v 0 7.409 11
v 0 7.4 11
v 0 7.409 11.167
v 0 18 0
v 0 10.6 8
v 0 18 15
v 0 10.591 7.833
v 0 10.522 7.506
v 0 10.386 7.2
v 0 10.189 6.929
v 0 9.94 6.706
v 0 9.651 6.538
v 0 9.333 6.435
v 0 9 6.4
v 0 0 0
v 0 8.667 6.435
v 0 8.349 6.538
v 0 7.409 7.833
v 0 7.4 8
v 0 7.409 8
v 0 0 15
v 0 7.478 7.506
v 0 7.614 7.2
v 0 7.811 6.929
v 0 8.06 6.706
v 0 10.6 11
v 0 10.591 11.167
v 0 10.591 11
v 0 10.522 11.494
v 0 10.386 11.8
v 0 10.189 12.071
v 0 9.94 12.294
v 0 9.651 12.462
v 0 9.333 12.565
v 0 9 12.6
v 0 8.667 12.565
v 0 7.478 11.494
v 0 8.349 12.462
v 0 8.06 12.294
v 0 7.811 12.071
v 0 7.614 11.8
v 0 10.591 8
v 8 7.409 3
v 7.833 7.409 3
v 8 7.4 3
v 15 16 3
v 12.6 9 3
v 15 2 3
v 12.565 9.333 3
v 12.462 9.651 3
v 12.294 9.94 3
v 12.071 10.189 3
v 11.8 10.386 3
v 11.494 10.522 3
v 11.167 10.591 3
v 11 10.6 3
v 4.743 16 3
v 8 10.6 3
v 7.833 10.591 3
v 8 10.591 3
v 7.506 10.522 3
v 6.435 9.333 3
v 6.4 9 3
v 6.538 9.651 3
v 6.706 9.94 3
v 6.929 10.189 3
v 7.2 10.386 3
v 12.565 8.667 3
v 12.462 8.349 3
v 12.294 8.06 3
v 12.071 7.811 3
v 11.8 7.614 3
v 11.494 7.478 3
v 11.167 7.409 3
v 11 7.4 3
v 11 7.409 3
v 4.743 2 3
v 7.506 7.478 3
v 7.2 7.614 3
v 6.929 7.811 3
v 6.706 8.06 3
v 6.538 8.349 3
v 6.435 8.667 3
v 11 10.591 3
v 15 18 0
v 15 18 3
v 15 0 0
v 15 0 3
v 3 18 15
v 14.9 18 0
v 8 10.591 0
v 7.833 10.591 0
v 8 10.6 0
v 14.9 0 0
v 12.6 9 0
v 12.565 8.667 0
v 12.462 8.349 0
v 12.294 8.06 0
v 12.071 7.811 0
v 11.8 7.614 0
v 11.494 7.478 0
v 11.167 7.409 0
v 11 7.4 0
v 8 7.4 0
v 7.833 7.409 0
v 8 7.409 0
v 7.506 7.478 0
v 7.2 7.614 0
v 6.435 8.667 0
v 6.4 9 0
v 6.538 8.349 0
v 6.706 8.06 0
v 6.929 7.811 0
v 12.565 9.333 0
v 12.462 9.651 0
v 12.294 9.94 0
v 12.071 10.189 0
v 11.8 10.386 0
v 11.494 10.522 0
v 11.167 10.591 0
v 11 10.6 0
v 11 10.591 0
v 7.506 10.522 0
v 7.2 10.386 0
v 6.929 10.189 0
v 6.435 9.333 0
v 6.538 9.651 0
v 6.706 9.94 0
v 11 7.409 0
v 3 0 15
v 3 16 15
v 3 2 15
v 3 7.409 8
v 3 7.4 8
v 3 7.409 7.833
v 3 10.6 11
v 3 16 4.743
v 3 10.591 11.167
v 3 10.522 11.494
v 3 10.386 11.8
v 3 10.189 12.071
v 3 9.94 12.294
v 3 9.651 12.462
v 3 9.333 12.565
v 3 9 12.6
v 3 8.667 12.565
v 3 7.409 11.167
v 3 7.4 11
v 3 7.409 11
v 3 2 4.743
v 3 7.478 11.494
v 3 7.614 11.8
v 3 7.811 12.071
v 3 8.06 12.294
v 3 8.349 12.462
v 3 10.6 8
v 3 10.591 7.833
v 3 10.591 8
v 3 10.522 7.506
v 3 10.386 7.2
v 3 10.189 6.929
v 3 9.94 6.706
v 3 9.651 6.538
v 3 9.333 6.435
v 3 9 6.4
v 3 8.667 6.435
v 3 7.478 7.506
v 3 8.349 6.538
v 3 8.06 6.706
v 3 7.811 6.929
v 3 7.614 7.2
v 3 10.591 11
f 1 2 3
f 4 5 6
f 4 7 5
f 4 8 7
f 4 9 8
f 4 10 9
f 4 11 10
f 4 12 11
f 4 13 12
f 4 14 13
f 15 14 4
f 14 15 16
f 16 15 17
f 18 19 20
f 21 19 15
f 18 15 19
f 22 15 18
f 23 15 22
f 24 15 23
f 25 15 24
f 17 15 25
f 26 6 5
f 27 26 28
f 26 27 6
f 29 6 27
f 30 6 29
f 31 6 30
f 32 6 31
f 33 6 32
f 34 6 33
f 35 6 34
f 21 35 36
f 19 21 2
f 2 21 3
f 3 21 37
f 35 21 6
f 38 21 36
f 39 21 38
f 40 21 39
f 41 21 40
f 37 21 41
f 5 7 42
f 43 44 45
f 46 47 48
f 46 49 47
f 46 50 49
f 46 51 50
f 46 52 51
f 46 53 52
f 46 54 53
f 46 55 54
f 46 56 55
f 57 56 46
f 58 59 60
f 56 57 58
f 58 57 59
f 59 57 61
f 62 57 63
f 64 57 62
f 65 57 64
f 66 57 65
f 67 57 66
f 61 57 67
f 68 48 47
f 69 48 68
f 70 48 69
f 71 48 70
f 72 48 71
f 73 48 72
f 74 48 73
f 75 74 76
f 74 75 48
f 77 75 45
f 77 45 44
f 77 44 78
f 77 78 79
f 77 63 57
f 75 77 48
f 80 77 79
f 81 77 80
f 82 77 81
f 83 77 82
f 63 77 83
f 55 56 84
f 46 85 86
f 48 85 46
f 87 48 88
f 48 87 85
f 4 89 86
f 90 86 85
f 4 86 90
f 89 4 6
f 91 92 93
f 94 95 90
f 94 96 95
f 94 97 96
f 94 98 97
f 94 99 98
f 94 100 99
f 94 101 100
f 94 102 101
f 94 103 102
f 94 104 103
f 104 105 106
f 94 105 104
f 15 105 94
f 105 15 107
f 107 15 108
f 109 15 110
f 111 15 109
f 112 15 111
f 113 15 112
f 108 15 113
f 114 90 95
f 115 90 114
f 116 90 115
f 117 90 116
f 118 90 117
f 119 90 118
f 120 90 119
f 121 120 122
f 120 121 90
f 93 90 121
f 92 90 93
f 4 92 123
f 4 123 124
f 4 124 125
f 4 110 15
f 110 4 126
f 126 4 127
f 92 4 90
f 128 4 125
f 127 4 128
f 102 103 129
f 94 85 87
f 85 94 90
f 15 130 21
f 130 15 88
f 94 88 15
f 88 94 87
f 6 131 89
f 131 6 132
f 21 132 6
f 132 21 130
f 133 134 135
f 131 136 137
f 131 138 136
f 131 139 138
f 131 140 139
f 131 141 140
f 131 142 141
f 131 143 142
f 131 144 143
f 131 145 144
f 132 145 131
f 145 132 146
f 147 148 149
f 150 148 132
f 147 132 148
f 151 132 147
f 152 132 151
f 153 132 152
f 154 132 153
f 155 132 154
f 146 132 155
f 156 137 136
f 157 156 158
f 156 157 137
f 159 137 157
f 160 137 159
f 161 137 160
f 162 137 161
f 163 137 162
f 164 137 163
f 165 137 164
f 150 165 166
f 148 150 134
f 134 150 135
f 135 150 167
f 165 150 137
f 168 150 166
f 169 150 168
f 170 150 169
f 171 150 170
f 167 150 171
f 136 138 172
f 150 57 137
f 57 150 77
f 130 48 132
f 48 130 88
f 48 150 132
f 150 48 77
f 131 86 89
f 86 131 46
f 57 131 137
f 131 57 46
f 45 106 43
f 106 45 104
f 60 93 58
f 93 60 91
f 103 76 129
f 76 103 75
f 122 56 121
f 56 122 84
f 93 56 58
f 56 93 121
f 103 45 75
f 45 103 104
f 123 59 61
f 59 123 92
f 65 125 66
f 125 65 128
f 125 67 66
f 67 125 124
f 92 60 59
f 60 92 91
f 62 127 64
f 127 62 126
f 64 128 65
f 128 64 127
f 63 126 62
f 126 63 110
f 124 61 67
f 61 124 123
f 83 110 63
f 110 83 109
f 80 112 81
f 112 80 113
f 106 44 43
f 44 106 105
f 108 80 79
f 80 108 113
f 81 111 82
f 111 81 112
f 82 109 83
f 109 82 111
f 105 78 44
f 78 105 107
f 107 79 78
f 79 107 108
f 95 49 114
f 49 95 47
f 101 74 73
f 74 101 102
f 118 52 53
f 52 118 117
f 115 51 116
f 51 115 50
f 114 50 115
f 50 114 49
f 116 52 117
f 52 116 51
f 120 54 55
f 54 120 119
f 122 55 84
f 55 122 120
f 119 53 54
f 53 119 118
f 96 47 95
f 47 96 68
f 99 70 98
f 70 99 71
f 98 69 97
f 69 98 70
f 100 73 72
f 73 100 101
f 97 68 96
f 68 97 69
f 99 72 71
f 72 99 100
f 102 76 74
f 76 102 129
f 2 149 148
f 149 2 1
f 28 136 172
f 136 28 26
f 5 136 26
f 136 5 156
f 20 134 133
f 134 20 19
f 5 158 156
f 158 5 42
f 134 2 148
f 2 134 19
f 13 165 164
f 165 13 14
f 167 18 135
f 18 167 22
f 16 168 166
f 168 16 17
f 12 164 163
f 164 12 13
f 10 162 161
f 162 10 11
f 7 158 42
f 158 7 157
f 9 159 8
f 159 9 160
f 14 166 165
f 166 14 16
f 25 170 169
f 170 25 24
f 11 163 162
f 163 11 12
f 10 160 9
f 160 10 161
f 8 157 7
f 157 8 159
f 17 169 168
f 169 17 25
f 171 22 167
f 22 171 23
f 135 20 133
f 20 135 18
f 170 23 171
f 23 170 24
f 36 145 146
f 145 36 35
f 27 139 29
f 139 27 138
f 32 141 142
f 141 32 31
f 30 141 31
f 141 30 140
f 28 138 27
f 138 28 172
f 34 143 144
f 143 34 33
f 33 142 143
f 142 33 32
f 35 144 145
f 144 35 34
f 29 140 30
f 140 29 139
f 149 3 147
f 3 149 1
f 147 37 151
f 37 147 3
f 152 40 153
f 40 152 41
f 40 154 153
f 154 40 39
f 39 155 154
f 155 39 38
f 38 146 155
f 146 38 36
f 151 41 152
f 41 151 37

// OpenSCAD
width=18;
length=15;
screw_d=3.2;

corner();


module corner(){
    difference(){
        union(){
            cube([length,width,3]);
            cube([3,width,length]);
            
            translate([0,0,3.5]) rotate([0,45,0]) cube([4,width,3]);
            translate([3,0,length]) rotate([0,135,0]) cube([length-3,2,sqrt(2*(length-3)*(length-3))]);
            translate([3,width-2,length]) rotate([0,135,0]) cube([length-3,2,sqrt(2*(length-3)*(length-3))]);
        }
    
    
    // Screwholes bottom
    translate([length-7,width/2-screw_d/2,-0.1]) cube([3,screw_d,5]);
    translate([length-7,width/2,-0.1]) cylinder(h=5, d=screw_d, $fn=30);
    translate([length-4,width/2,-0.1]) cylinder(h=5, d=screw_d, $fn=30);
    
    // Screwholes side
    translate([-0.1,width/2-screw_d/2,length-7]) cube([5,screw_d,3]);
    translate([-0.1,width/2,length-7]) rotate([0,90,0]) cylinder(h=5, d=screw_d, $fn=30);
    translate([-0.1,width/2,length-4]) rotate([0,90,0]) cylinder(h=5, d=screw_d, $fn=30);
        
    //bottom and back cut
    translate([-0.1,-0.1,-length]) cube([length,width+1,length]);
    translate([-length,-0.1,-0.1]) cube([length,width+1,length+1]);
    
    }  
}
